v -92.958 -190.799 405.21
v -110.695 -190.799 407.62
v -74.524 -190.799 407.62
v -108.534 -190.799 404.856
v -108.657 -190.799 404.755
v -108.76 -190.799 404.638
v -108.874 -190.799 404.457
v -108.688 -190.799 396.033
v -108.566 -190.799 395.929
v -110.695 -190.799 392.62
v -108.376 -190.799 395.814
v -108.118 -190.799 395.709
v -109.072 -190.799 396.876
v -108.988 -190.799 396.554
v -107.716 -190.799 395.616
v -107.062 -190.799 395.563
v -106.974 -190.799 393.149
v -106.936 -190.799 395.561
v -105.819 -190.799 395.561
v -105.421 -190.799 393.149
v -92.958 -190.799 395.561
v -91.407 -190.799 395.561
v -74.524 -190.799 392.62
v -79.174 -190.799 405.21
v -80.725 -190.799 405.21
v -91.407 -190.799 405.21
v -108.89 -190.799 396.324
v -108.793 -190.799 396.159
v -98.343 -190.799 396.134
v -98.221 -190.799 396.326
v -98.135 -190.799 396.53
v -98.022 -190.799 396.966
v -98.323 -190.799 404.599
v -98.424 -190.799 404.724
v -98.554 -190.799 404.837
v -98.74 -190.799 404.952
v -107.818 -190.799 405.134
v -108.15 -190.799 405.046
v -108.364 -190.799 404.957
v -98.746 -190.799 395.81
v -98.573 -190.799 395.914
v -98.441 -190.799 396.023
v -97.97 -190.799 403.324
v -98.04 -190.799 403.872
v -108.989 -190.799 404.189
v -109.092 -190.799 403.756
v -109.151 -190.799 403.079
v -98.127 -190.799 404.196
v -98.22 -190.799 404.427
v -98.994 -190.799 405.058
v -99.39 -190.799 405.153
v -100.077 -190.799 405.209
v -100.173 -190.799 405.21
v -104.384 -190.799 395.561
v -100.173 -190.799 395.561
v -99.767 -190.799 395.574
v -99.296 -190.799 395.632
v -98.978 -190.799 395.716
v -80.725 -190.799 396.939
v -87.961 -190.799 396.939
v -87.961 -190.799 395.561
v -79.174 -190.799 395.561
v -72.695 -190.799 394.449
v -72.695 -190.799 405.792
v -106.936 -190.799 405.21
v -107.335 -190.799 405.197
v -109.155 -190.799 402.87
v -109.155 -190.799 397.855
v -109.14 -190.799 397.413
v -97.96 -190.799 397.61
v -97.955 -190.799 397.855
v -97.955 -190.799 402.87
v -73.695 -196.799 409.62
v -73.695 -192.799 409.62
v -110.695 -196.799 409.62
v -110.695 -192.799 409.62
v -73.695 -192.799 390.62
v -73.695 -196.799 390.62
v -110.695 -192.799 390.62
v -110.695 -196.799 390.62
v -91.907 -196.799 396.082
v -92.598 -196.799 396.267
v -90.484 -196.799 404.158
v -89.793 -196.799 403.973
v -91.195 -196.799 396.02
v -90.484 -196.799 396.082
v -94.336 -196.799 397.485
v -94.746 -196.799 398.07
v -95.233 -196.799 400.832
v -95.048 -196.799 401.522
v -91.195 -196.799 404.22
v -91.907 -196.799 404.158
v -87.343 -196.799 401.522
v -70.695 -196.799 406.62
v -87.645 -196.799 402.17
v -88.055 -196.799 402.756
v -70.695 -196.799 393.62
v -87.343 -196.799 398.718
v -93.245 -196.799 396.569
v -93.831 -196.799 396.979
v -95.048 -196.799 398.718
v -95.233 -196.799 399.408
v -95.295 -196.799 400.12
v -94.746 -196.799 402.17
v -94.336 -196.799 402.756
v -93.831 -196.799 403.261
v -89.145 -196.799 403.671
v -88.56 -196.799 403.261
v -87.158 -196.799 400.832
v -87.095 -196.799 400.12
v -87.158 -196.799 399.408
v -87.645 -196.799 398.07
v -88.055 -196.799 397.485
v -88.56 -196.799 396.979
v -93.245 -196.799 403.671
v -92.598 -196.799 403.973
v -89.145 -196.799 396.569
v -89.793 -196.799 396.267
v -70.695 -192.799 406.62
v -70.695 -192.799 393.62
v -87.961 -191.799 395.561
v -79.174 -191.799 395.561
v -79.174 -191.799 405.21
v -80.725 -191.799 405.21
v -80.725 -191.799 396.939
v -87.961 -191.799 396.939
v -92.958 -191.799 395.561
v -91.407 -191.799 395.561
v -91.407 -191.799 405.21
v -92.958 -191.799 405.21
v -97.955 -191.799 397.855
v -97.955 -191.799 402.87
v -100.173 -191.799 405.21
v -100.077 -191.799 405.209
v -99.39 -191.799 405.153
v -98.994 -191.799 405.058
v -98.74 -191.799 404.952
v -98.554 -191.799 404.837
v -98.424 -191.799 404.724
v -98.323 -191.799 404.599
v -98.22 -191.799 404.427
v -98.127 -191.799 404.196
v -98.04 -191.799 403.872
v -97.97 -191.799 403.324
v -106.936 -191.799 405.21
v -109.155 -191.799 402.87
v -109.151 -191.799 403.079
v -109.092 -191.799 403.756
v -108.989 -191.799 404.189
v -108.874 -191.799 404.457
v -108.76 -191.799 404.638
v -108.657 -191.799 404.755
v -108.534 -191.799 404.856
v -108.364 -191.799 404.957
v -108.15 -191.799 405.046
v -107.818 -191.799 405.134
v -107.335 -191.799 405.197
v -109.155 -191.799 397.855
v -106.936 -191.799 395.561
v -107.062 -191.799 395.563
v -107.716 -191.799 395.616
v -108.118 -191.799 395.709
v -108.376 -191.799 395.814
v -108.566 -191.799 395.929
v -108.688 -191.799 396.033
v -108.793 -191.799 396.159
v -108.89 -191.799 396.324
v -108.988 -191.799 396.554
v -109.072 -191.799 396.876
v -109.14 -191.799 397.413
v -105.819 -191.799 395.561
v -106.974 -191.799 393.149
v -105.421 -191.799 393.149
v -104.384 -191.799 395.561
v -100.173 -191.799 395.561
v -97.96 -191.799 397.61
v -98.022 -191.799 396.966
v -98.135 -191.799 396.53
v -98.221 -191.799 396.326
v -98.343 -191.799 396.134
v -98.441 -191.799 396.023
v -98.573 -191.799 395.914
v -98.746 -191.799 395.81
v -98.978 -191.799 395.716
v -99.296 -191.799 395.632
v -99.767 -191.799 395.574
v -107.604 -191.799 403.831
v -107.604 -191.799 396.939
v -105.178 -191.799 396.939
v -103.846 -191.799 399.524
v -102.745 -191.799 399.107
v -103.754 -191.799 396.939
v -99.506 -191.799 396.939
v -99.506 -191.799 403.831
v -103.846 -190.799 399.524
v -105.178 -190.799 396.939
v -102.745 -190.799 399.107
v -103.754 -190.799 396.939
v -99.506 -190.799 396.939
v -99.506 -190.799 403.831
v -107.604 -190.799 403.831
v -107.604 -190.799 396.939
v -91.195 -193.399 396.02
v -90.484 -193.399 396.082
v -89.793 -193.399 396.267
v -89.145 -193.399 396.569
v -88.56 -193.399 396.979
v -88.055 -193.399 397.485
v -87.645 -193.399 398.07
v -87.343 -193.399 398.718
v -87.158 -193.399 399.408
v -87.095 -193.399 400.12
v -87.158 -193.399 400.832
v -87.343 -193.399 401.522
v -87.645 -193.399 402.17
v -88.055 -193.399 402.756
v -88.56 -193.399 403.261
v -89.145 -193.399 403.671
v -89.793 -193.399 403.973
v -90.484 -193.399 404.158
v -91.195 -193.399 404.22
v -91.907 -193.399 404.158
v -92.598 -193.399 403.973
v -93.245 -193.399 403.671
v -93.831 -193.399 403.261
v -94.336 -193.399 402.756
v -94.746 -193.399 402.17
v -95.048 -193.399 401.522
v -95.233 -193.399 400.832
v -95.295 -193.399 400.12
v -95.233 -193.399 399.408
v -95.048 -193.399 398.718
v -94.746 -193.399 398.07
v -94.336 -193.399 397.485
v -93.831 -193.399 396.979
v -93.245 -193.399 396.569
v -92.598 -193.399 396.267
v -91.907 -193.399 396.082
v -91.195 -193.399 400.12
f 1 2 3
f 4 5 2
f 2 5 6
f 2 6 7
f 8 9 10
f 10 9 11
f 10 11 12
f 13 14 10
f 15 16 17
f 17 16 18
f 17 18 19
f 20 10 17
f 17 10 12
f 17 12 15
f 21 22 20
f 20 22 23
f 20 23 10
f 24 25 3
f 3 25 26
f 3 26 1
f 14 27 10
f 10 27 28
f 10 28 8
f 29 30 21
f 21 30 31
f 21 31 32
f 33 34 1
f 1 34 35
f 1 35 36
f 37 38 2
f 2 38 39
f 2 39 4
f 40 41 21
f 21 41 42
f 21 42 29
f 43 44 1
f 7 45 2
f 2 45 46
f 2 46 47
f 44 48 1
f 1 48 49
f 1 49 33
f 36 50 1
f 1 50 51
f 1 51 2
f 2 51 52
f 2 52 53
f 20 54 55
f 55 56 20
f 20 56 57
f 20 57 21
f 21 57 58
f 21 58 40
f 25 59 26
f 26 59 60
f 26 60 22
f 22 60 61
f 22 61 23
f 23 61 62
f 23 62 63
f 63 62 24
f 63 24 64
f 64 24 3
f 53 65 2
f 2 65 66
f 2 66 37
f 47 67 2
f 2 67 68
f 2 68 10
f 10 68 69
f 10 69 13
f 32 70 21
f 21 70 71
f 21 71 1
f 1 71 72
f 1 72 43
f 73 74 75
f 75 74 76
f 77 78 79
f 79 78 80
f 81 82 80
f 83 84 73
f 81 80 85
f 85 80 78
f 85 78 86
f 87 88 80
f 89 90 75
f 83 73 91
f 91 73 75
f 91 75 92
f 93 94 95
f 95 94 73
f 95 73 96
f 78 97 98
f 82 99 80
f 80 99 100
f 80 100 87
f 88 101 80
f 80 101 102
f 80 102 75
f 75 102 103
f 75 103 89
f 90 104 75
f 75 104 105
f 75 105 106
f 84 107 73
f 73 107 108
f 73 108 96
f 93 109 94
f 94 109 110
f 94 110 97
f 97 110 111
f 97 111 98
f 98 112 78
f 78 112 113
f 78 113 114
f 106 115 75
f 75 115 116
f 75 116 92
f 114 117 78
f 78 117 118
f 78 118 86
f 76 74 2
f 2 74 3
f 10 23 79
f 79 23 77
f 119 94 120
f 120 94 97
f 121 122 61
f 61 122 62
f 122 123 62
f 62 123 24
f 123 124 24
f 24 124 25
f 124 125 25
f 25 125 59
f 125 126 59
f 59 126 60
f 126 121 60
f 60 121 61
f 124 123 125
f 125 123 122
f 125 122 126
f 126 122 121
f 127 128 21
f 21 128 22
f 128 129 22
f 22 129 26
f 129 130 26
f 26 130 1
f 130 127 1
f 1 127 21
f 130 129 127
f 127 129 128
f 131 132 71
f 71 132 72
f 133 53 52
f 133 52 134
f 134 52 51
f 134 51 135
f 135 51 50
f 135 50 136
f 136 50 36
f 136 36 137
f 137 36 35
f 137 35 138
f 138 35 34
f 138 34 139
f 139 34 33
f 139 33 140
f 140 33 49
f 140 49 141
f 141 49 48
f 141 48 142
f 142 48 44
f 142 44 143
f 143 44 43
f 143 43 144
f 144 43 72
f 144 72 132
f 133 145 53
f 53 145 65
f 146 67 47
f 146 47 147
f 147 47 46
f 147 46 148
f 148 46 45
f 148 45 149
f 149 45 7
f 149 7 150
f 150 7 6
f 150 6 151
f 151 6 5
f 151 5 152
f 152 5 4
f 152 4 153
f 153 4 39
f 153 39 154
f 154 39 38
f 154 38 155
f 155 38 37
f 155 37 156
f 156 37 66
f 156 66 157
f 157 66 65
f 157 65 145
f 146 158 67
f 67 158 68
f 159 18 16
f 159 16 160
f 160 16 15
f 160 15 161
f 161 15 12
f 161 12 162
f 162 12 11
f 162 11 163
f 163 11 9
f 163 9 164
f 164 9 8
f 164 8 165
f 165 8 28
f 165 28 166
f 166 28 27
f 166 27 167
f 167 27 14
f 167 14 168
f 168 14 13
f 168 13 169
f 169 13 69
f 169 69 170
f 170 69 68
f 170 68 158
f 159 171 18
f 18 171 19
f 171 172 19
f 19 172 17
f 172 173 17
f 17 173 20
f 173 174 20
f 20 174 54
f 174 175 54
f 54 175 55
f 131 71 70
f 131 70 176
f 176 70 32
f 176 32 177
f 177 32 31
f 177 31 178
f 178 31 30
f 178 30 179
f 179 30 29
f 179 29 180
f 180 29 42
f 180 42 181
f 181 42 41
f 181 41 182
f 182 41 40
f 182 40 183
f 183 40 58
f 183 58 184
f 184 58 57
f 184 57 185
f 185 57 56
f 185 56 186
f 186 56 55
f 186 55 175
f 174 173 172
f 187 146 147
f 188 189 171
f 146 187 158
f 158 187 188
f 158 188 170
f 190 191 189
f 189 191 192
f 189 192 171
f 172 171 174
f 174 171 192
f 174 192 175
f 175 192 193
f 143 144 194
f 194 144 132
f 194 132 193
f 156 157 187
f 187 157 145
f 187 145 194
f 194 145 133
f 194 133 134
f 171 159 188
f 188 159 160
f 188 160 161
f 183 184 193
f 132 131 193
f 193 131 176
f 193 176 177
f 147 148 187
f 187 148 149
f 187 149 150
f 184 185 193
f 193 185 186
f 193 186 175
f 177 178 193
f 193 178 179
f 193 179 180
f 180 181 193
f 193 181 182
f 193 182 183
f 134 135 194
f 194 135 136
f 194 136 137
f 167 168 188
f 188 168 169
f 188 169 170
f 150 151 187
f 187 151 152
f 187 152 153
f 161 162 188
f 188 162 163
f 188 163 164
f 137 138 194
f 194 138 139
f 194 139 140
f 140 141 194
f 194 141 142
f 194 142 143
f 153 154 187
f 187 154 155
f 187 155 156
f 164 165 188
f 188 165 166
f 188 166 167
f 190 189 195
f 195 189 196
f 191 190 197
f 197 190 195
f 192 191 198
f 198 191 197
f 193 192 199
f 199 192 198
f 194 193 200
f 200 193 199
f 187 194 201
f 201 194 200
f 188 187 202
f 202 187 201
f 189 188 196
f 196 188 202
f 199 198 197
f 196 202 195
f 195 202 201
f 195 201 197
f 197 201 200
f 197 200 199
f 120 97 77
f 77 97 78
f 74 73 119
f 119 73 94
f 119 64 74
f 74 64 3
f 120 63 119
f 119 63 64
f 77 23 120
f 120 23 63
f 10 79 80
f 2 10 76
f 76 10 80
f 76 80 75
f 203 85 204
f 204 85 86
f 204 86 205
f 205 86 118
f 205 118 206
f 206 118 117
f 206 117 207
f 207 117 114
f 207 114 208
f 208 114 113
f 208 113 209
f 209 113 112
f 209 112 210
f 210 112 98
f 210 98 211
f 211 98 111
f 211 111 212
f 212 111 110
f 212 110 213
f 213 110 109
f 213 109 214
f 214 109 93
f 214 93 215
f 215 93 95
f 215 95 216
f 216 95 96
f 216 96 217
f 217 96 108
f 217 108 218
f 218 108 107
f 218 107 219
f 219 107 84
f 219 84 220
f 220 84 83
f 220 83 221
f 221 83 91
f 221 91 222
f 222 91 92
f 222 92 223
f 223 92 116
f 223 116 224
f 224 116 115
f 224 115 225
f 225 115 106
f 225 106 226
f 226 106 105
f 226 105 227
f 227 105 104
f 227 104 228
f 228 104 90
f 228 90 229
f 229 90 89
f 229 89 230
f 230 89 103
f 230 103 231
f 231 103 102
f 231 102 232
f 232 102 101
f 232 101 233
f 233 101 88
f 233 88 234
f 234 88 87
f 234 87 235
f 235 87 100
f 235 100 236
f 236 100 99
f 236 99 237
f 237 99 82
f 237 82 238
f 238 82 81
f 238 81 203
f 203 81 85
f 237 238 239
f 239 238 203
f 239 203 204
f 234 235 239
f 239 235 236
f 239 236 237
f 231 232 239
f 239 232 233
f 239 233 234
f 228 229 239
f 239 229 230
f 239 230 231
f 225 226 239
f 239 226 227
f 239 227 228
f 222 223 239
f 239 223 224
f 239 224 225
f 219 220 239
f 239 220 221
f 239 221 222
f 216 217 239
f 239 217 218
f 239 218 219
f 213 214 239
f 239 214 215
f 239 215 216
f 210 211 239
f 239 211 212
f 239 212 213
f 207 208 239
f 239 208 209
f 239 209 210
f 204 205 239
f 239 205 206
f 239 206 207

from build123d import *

# Parameters (mm, degrees)
BOSS_EXTRUDE1_DEPTH = 6
SKETCH2_W           = 1.55073591
SKETCH2_H           = 9.649023438
SKETCH2_W_2         = 1.550735909
CUT_EXTRUDE1_DEPTH  = 1
SKETCH4_W           = 43.347942051
SKETCH4_H           = 26.329646459
CUT_EXTRUDE2_DEPTH  = 10
CHAMFER1_SIZE       = 3
CHAMFER2_SIZE       = 2
SKETCH5_W           = 34.860169367
SKETCH5_H           = 17.866082473
CUT_EXTRUDE3_DEPTH  = 0.5
SKETCH6_R           = 4.1
CUT_EXTRUDE4_DEPTH  = 3.4


with BuildPart() as part:
    # Sketch1 → Boss-Extrude1 (new body)
    with BuildSketch(Plane(origin=(0, -196.798939869, 0), x_dir=(1, 0, 0), z_dir=(0, 1, 0))):
        Polygon((-110.695481055, -390.620141885), (-70.695481055, -390.620141885), (-70.695481055, -409.620141885), (-110.695481055, -409.620141885), (-151.695481055, -409.620141885), (-151.695481055, -390.620141885), align=None)
    extrude(amount=BOSS_EXTRUDE1_DEPTH)

    # Sketch2 → Cut-Extrude1 (cut)
    # profile 1 of 6: a face of its own
    with BuildSketch(Plane(origin=(0, -190.798939869, 0), x_dir=(1, 0, 0), z_dir=(0, 1, 0))):
        with BuildLine():
            add(Edge.make_bspline(
                [(-140.767176982, -405.209924667), (-140.982622928, -405.208412821), (-141.394982016, -405.205519181), (-141.98403336, -405.168701103), (-142.517358029, -405.117955452), (-142.996891336, -405.040429638), (-143.431861328, -404.937751856), (-143.828275274, -404.808826708), (-144.192604534, -404.655107583), (-144.412843494, -404.524922655), (-144.520173264, -404.46147921)],
                knots=[0, 0, 0, 0, 1.333778163, 2.552823848, 3.653108193, 4.649746513, 5.558133507, 6.417402386, 7.228747549, 8, 8, 8, 8], degree=3))
            add(Edge.make_bspline(
                [(-144.520173264, -404.46147921), (-144.672688651, -404.354540566), (-144.977706991, -404.140671998), (-145.372980808, -403.740179693), (-145.72204175, -403.288685781), (-146.015251375, -402.783895607), (-146.252341242, -402.23844628), (-146.422101614, -401.66260039), (-146.524137936, -401.061196848), (-146.537803169, -400.652341907), (-146.544745145, -400.444642444)],
                knots=[0, 0, 0, 0, 0.952297785, 1.904517931, 2.867930349, 3.869019748, 4.885904814, 5.906780791, 6.936638737, 8, 8, 8, 8], degree=3))
            add(Edge.make_bspline(
                [(-146.544745145, -400.444642444), (-146.539017026, -400.224388593), (-146.527802756, -399.793184944), (-146.425839385, -399.164163809), (-146.258098069, -398.569953885), (-146.027848138, -398.012133469), (-145.734933397, -397.499500284), (-145.384408604, -397.041985203), (-144.985328734, -396.634035669), (-144.675593052, -396.417833194), (-144.520173264, -396.309346685)],
                knots=[0, 0, 0, 0, 1.100129358, 2.153786604, 3.174592563, 4.179911314, 5.162319574, 6.115853573, 7.05456925, 8, 8, 8, 8], degree=3))
            add(Edge.make_bspline(
                [(-144.520173264, -396.309346685), (-144.415407214, -396.247970567), (-144.198209286, -396.120727383), (-143.840423238, -395.967019912), (-143.444768852, -395.841274433), (-143.011380567, -395.735735637), (-142.529145335, -395.655193263), (-141.993148894, -395.601522013), (-141.399450617, -395.565451573), (-140.984411915, -395.562464625), (-140.767176982, -395.560901229)],
                knots=[0, 0, 0, 0, 0.751413761, 1.557809164, 2.404944974, 3.320203742, 4.317937033, 5.430050062, 6.654865437, 8, 8, 8, 8], degree=3))
            Line((-140.767176982, -395.560901229), (-135.517289788, -395.560901229))
            Line((-135.517289788, -395.560901229), (-135.517289788, -405.209924667))
            Line((-135.517289788, -405.209924667), (-140.767176982, -405.209924667))
        make_face()
        with BuildLine():
            Line((-140.538335746, -403.831492747), (-137.068025698, -403.831492747))
            Line((-137.068025698, -403.831492747), (-137.068025698, -396.939333149))
            Line((-137.068025698, -396.939333149), (-140.538335746, -396.939333149))
            add(Edge.make_bspline(
                [(-140.538335746, -396.939333149), (-140.726862755, -396.941898287), (-141.089956251, -396.946838613), (-141.61301485, -396.984845883), (-142.093527417, -397.044798091), (-142.531495923, -397.132160177), (-142.925368528, -397.248552244), (-143.278930228, -397.383732816), (-143.589154837, -397.547989389), (-143.856977936, -397.741453756), (-144.088661152, -397.964049484), (-144.285418794, -398.219866085), (-144.453911174, -398.507093156), (-144.587443165, -398.829479607), (-144.695661065, -399.182540893), (-144.769772109, -399.569730192), (-144.811875271, -399.989610443), (-144.818346787, -400.28031641), (-144.821705246, -400.431181195)],
                knots=[0, 0, 0, 0, 1.40931624, 2.714271877, 3.918424909, 5.027624621, 6.048757475, 6.985660279, 7.853111911, 8.665027323, 9.447928266, 10.246427284, 11.070312611, 11.930128696, 12.849083366, 13.826707191, 14.872147839, 16, 16, 16, 16], degree=3))
            add(Edge.make_bspline(
                [(-144.821705246, -400.431181195), (-144.818709771, -400.576712398), (-144.812924864, -400.857764438), (-144.765683368, -401.263673078), (-144.694488189, -401.639383199), (-144.580929863, -401.980833169), (-144.445105089, -402.294186016), (-144.27545686, -402.57538752), (-144.073112413, -402.824282209), (-143.83895635, -403.042456395), (-143.566561363, -403.230826533), (-143.2546296, -403.391353977), (-142.901690894, -403.528470783), (-142.507862117, -403.640795062), (-142.072601063, -403.725173206), (-141.597799376, -403.786080538), (-141.081882008, -403.823960231), (-140.724169188, -403.828917449), (-140.538335746, -403.831492747)],
                knots=[0, 0, 0, 0, 1.1029475, 2.130028734, 3.094733, 3.996236287, 4.852145578, 5.679426148, 6.477428238, 7.276560664, 8.097578654, 8.980088779, 9.930191586, 10.963809582, 12.080624623, 13.288249086, 14.591233026, 16, 16, 16, 16], degree=3))
        make_face(mode=Mode.SUBTRACT)
    # profile 2 of 6: a face of its own
    with BuildSketch(Plane(origin=(0, -190.798939869, 0), x_dir=(1, 0, 0), z_dir=(0, 1, 0))):
        with Locations((-129.745106125, -400.385412948)):
            Rectangle(SKETCH2_W, SKETCH2_H)
    # profile 3 of 6: a face of its own
    with BuildSketch(Plane(origin=(0, -190.798939869, 0), x_dir=(1, 0, 0), z_dir=(0, 1, 0))):
        with BuildLine():
            Line((-115.357722964, -405.209924667), (-115.357722964, -396.939333149))
            Line((-115.357722964, -396.939333149), (-122.422186552, -396.939333149))
            Line((-122.422186552, -396.939333149), (-122.422186552, -405.209924667))
            Line((-122.422186552, -405.209924667), (-123.972922461, -405.209924667))
            Line((-123.972922461, -405.209924667), (-123.972922461, -397.876236094))
            add(Edge.make_bspline(
                [(-123.972922461, -397.876236094), (-123.97130062, -397.768503726), (-123.968175155, -397.560891645), (-123.946562754, -397.263453332), (-123.913361153, -396.992319774), (-123.861781613, -396.749497692), (-123.798905063, -396.532206755), (-123.717930323, -396.342601202), (-123.623893906, -396.179127334), (-123.51405496, -396.039134081), (-123.380645379, -395.924069451), (-123.223997755, -395.826555258), (-123.043098505, -395.743432714), (-122.835801675, -395.677092248), (-122.603622791, -395.623157153), (-122.345091238, -395.586720416), (-122.061773796, -395.565800066), (-121.864927889, -395.56257696), (-121.76258534, -395.560901229)],
                knots=[0, 0, 0, 0, 1.365025829, 2.630554399, 3.777289411, 4.823296905, 5.773086012, 6.639126, 7.429026898, 8.157168554, 8.882463115, 9.649102086, 10.488604984, 11.398409027, 12.402469484, 13.50569655, 14.703181711, 16, 16, 16, 16], degree=3))
            Line((-121.76258534, -395.560901229), (-116.009247426, -395.560901229))
            add(Edge.make_bspline(
                [(-116.009247426, -395.560901229), (-115.906920359, -395.562687865), (-115.710104231, -395.566124284), (-115.427333413, -395.58552546), (-115.171085642, -395.626525893), (-114.940696482, -395.680226348), (-114.733396449, -395.745508539), (-114.553275043, -395.832261863), (-114.396325587, -395.931154528), (-114.266726678, -396.050908492), (-114.154943277, -396.190042043), (-114.062808079, -396.355700348), (-113.981390872, -396.544829811), (-113.917656822, -396.761041229), (-113.866888225, -397.002247145), (-113.833414163, -397.270620412), (-113.811650677, -397.564474201), (-113.808585204, -397.769400211), (-113.806987054, -397.876236094)],
                knots=[0, 0, 0, 0, 1.301446602, 2.503205558, 3.60080036, 4.597332017, 5.510383128, 6.357737689, 7.133266863, 7.860254787, 8.590995162, 9.393593455, 10.262724318, 11.204977956, 12.254718625, 13.394230236, 14.64151108, 16, 16, 16, 16], degree=3))
            Line((-113.806987054, -397.876236094), (-113.806987054, -405.209924667))
            Line((-113.806987054, -405.209924667), (-115.357722964, -405.209924667))
        make_face()
    # profile 4 of 6: a face of its own
    with BuildSketch(Plane(origin=(0, -190.798939869, 0), x_dir=(1, 0, 0), z_dir=(0, 1, 0))):
        with BuildLine():
            add(Edge.make_bspline(
                [(-97.955019978, -402.870359553), (-97.956652565, -402.978088999), (-97.959798739, -403.185695451), (-97.981268964, -403.483172415), (-98.015048775, -403.755050365), (-98.065378023, -403.999133459), (-98.1304323, -404.217037438), (-98.206687836, -404.40992551), (-98.301548404, -404.575336569), (-98.411034046, -404.718120224), (-98.544442988, -404.835934988), (-98.701069946, -404.936199437), (-98.882708774, -405.022503111), (-99.090920415, -405.091152386), (-99.324340246, -405.145039922), (-99.583864206, -405.180769412), (-99.869613361, -405.206059906), (-100.069270672, -405.208599655), (-100.173433849, -405.209924667)],
                knots=[0, 0, 0, 0, 1.356221993, 2.613588442, 3.7529275, 4.803245948, 5.746909319, 6.613424892, 7.408010909, 8.14031288, 8.868419245, 9.636206373, 10.47510186, 11.393329314, 12.390914008, 13.487025728, 14.688956683, 16, 16, 16, 16], degree=3))
            Line((-100.173433849, -405.209924667), (-106.936365454, -405.209924667))
            add(Edge.make_bspline(
                [(-106.936365454, -405.209924667), (-107.03959143, -405.208168009), (-107.237308227, -405.204803345), (-107.521846366, -405.185117085), (-107.779867844, -405.144247356), (-108.01302586, -405.090709797), (-108.221545349, -405.025218465), (-108.404305019, -404.941105061), (-108.562292124, -404.842079279), (-108.695959314, -404.723411798), (-108.805834581, -404.580848257), (-108.899064948, -404.415265905), (-108.981397593, -404.224482592), (-109.043478168, -404.005085856), (-109.09525377, -403.759657576), (-109.128239011, -403.486707323), (-109.150133277, -403.187505345), (-109.153187914, -402.978991502), (-109.154779325, -402.870359553)],
                knots=[0, 0, 0, 0, 1.299210286, 2.488479226, 3.585823455, 4.582994824, 5.497291421, 6.331034297, 7.108000517, 7.835805208, 8.567803767, 9.362060566, 10.222158455, 11.176253704, 12.226136976, 13.376204297, 14.633049786, 16, 16, 16, 16], degree=3))
            Line((-109.154779325, -402.870359553), (-109.154779325, -397.854698095))
            add(Edge.make_bspline(
                [(-109.154779325, -397.854698095), (-109.153151378, -397.747864039), (-109.150015111, -397.542046438), (-109.128503265, -397.247278496), (-109.094894709, -396.978008156), (-109.044020497, -396.736842057), (-108.980901322, -396.521291491), (-108.899001076, -396.334013033), (-108.80658263, -396.171325929), (-108.69573208, -396.033634198), (-108.561285836, -395.920666277), (-108.403637682, -395.824563938), (-108.221581059, -395.740232658), (-108.01335545, -395.674186162), (-107.77970286, -395.624053469), (-107.52162289, -395.586441232), (-107.237333904, -395.5658101), (-107.039600238, -395.562585014), (-106.936365454, -395.560901229)],
                knots=[0, 0, 0, 0, 1.357245466, 2.61475614, 3.753224731, 4.80200455, 5.743395722, 6.6012629, 7.393257341, 8.114460715, 8.834220599, 9.61255537, 10.454283276, 11.377336392, 12.381536746, 13.487687791, 14.68834675, 16, 16, 16, 16], degree=3))
            Line((-106.936365454, -395.560901229), (-105.81908177, -395.560901229))
            Line((-105.81908177, -395.560901229), (-106.974056952, -393.14864537))
            Line((-106.974056952, -393.14864537), (-105.420628793, -393.14864537))
            Line((-105.420628793, -393.14864537), (-104.384112603, -395.560901229))
            Line((-104.384112603, -395.560901229), (-100.173433849, -395.560901229))
            add(Edge.make_bspline(
                [(-100.173433849, -395.560901229), (-100.069299861, -395.562576695), (-99.869770228, -395.565787032), (-99.583710784, -395.586483719), (-99.324398952, -395.623381546), (-99.090777766, -395.67665049), (-98.883528866, -395.746452514), (-98.700271675, -395.828557698), (-98.545451596, -395.929855275), (-98.410938513, -396.044261005), (-98.302420462, -396.184244467), (-98.205884472, -396.345061043), (-98.130494516, -396.534972277), (-98.066128283, -396.748472614), (-98.014313393, -396.98778752), (-97.981722229, -397.253596433), (-97.959616393, -397.545617805), (-97.95659546, -397.74875672), (-97.955019978, -397.854698095)],
                knots=[0, 0, 0, 0, 1.324586597, 2.538021266, 3.64545599, 4.653345889, 5.581058773, 6.423763498, 7.199481985, 7.927542786, 8.658461541, 9.441536144, 10.306446208, 11.248929857, 12.276599877, 13.416389652, 14.652590838, 16, 16, 16, 16], degree=3))
            Line((-97.955019978, -397.854698095), (-97.955019978, -402.870359553))
        make_face()
        Polygon((-105.178326307, -396.939333149), (-107.604043416, -396.939333149), (-107.604043416, -403.831492747), (-99.505755888, -403.831492747), (-99.505755888, -396.939333149), (-103.75412614, -396.939333149), (-102.744532449, -399.106594272), (-103.845662635, -399.523892998), align=None, mode=Mode.SUBTRACT)
    # profile 5 of 6: a face of its own
    with BuildSketch(Plane(origin=(0, -190.798939869, 0), x_dir=(1, 0, 0), z_dir=(0, 1, 0))):
        with Locations((-92.182836315, -400.385412948)):
            Rectangle(SKETCH2_W_2, SKETCH2_H)
    # profile 6 of 6: a face of its own
    with BuildSketch(Plane(origin=(0, -190.798939869, 0), x_dir=(1, 0, 0), z_dir=(0, 1, 0))):
        Polygon((-79.173885073, -395.560901229), (-79.173885073, -405.209924667), (-80.724620983, -405.209924667), (-80.724620983, -396.939333149), (-87.961388561, -396.939333149), (-87.961388561, -395.560901229), align=None)
    extrude(amount=-CUT_EXTRUDE1_DEPTH, mode=Mode.SUBTRACT)

    # Sketch4 → Cut-Extrude2 (cut)
    with BuildSketch(Plane(origin=(0, -190.798939869, 0), x_dir=(1, 0, 0), z_dir=(0, 1, 0))):
        with Locations((-132.86945208, -396.455318656)):
            Rectangle(SKETCH4_W, SKETCH4_H)
    extrude(amount=-CUT_EXTRUDE2_DEPTH, mode=Mode.SUBTRACT)

    # Chamfer1
    chamfer1_edges = [part.edges().sort_by_distance(p)[0] for p in [
        (-70.695481055, -193.798939869, 390.620141885),
        (-70.695481055, -193.798939869, 409.620141885),
    ]]
    chamfer(chamfer1_edges, length=CHAMFER1_SIZE)

    # Chamfer2
    chamfer2_edges = [part.edges().sort_by_distance(p)[0] for p in [
        (-92.445481055, -190.798939869, 409.620141885),
        (-92.445481055, -190.798939869, 390.620141885),
        (-70.695481055, -190.798939869, 400.120141885),
        (-72.195481055, -190.798939869, 408.120141885),
        (-72.195481055, -190.798939869, 392.120141885),
    ]]
    chamfer(chamfer2_edges, length=CHAMFER2_SIZE)

    # Sketch5 → Cut-Extrude3 (cut)
    with BuildSketch(Plane.ZY.offset(111.195481055)):
        with Locations((401.477645416, -193.610788767)):
            Rectangle(SKETCH5_W, SKETCH5_H)
    extrude(amount=-CUT_EXTRUDE3_DEPTH, mode=Mode.SUBTRACT)

    # Sketch6 → Cut-Extrude4 (cut)
    with BuildSketch(Plane.XZ.offset(196.798939869)):
        with Locations(Location((-91.195481055, 400.120141885, 0), (0, 0, 270))):
            Circle(SKETCH6_R)
    extrude(amount=-CUT_EXTRUDE4_DEPTH, mode=Mode.SUBTRACT)


solid = part.part
